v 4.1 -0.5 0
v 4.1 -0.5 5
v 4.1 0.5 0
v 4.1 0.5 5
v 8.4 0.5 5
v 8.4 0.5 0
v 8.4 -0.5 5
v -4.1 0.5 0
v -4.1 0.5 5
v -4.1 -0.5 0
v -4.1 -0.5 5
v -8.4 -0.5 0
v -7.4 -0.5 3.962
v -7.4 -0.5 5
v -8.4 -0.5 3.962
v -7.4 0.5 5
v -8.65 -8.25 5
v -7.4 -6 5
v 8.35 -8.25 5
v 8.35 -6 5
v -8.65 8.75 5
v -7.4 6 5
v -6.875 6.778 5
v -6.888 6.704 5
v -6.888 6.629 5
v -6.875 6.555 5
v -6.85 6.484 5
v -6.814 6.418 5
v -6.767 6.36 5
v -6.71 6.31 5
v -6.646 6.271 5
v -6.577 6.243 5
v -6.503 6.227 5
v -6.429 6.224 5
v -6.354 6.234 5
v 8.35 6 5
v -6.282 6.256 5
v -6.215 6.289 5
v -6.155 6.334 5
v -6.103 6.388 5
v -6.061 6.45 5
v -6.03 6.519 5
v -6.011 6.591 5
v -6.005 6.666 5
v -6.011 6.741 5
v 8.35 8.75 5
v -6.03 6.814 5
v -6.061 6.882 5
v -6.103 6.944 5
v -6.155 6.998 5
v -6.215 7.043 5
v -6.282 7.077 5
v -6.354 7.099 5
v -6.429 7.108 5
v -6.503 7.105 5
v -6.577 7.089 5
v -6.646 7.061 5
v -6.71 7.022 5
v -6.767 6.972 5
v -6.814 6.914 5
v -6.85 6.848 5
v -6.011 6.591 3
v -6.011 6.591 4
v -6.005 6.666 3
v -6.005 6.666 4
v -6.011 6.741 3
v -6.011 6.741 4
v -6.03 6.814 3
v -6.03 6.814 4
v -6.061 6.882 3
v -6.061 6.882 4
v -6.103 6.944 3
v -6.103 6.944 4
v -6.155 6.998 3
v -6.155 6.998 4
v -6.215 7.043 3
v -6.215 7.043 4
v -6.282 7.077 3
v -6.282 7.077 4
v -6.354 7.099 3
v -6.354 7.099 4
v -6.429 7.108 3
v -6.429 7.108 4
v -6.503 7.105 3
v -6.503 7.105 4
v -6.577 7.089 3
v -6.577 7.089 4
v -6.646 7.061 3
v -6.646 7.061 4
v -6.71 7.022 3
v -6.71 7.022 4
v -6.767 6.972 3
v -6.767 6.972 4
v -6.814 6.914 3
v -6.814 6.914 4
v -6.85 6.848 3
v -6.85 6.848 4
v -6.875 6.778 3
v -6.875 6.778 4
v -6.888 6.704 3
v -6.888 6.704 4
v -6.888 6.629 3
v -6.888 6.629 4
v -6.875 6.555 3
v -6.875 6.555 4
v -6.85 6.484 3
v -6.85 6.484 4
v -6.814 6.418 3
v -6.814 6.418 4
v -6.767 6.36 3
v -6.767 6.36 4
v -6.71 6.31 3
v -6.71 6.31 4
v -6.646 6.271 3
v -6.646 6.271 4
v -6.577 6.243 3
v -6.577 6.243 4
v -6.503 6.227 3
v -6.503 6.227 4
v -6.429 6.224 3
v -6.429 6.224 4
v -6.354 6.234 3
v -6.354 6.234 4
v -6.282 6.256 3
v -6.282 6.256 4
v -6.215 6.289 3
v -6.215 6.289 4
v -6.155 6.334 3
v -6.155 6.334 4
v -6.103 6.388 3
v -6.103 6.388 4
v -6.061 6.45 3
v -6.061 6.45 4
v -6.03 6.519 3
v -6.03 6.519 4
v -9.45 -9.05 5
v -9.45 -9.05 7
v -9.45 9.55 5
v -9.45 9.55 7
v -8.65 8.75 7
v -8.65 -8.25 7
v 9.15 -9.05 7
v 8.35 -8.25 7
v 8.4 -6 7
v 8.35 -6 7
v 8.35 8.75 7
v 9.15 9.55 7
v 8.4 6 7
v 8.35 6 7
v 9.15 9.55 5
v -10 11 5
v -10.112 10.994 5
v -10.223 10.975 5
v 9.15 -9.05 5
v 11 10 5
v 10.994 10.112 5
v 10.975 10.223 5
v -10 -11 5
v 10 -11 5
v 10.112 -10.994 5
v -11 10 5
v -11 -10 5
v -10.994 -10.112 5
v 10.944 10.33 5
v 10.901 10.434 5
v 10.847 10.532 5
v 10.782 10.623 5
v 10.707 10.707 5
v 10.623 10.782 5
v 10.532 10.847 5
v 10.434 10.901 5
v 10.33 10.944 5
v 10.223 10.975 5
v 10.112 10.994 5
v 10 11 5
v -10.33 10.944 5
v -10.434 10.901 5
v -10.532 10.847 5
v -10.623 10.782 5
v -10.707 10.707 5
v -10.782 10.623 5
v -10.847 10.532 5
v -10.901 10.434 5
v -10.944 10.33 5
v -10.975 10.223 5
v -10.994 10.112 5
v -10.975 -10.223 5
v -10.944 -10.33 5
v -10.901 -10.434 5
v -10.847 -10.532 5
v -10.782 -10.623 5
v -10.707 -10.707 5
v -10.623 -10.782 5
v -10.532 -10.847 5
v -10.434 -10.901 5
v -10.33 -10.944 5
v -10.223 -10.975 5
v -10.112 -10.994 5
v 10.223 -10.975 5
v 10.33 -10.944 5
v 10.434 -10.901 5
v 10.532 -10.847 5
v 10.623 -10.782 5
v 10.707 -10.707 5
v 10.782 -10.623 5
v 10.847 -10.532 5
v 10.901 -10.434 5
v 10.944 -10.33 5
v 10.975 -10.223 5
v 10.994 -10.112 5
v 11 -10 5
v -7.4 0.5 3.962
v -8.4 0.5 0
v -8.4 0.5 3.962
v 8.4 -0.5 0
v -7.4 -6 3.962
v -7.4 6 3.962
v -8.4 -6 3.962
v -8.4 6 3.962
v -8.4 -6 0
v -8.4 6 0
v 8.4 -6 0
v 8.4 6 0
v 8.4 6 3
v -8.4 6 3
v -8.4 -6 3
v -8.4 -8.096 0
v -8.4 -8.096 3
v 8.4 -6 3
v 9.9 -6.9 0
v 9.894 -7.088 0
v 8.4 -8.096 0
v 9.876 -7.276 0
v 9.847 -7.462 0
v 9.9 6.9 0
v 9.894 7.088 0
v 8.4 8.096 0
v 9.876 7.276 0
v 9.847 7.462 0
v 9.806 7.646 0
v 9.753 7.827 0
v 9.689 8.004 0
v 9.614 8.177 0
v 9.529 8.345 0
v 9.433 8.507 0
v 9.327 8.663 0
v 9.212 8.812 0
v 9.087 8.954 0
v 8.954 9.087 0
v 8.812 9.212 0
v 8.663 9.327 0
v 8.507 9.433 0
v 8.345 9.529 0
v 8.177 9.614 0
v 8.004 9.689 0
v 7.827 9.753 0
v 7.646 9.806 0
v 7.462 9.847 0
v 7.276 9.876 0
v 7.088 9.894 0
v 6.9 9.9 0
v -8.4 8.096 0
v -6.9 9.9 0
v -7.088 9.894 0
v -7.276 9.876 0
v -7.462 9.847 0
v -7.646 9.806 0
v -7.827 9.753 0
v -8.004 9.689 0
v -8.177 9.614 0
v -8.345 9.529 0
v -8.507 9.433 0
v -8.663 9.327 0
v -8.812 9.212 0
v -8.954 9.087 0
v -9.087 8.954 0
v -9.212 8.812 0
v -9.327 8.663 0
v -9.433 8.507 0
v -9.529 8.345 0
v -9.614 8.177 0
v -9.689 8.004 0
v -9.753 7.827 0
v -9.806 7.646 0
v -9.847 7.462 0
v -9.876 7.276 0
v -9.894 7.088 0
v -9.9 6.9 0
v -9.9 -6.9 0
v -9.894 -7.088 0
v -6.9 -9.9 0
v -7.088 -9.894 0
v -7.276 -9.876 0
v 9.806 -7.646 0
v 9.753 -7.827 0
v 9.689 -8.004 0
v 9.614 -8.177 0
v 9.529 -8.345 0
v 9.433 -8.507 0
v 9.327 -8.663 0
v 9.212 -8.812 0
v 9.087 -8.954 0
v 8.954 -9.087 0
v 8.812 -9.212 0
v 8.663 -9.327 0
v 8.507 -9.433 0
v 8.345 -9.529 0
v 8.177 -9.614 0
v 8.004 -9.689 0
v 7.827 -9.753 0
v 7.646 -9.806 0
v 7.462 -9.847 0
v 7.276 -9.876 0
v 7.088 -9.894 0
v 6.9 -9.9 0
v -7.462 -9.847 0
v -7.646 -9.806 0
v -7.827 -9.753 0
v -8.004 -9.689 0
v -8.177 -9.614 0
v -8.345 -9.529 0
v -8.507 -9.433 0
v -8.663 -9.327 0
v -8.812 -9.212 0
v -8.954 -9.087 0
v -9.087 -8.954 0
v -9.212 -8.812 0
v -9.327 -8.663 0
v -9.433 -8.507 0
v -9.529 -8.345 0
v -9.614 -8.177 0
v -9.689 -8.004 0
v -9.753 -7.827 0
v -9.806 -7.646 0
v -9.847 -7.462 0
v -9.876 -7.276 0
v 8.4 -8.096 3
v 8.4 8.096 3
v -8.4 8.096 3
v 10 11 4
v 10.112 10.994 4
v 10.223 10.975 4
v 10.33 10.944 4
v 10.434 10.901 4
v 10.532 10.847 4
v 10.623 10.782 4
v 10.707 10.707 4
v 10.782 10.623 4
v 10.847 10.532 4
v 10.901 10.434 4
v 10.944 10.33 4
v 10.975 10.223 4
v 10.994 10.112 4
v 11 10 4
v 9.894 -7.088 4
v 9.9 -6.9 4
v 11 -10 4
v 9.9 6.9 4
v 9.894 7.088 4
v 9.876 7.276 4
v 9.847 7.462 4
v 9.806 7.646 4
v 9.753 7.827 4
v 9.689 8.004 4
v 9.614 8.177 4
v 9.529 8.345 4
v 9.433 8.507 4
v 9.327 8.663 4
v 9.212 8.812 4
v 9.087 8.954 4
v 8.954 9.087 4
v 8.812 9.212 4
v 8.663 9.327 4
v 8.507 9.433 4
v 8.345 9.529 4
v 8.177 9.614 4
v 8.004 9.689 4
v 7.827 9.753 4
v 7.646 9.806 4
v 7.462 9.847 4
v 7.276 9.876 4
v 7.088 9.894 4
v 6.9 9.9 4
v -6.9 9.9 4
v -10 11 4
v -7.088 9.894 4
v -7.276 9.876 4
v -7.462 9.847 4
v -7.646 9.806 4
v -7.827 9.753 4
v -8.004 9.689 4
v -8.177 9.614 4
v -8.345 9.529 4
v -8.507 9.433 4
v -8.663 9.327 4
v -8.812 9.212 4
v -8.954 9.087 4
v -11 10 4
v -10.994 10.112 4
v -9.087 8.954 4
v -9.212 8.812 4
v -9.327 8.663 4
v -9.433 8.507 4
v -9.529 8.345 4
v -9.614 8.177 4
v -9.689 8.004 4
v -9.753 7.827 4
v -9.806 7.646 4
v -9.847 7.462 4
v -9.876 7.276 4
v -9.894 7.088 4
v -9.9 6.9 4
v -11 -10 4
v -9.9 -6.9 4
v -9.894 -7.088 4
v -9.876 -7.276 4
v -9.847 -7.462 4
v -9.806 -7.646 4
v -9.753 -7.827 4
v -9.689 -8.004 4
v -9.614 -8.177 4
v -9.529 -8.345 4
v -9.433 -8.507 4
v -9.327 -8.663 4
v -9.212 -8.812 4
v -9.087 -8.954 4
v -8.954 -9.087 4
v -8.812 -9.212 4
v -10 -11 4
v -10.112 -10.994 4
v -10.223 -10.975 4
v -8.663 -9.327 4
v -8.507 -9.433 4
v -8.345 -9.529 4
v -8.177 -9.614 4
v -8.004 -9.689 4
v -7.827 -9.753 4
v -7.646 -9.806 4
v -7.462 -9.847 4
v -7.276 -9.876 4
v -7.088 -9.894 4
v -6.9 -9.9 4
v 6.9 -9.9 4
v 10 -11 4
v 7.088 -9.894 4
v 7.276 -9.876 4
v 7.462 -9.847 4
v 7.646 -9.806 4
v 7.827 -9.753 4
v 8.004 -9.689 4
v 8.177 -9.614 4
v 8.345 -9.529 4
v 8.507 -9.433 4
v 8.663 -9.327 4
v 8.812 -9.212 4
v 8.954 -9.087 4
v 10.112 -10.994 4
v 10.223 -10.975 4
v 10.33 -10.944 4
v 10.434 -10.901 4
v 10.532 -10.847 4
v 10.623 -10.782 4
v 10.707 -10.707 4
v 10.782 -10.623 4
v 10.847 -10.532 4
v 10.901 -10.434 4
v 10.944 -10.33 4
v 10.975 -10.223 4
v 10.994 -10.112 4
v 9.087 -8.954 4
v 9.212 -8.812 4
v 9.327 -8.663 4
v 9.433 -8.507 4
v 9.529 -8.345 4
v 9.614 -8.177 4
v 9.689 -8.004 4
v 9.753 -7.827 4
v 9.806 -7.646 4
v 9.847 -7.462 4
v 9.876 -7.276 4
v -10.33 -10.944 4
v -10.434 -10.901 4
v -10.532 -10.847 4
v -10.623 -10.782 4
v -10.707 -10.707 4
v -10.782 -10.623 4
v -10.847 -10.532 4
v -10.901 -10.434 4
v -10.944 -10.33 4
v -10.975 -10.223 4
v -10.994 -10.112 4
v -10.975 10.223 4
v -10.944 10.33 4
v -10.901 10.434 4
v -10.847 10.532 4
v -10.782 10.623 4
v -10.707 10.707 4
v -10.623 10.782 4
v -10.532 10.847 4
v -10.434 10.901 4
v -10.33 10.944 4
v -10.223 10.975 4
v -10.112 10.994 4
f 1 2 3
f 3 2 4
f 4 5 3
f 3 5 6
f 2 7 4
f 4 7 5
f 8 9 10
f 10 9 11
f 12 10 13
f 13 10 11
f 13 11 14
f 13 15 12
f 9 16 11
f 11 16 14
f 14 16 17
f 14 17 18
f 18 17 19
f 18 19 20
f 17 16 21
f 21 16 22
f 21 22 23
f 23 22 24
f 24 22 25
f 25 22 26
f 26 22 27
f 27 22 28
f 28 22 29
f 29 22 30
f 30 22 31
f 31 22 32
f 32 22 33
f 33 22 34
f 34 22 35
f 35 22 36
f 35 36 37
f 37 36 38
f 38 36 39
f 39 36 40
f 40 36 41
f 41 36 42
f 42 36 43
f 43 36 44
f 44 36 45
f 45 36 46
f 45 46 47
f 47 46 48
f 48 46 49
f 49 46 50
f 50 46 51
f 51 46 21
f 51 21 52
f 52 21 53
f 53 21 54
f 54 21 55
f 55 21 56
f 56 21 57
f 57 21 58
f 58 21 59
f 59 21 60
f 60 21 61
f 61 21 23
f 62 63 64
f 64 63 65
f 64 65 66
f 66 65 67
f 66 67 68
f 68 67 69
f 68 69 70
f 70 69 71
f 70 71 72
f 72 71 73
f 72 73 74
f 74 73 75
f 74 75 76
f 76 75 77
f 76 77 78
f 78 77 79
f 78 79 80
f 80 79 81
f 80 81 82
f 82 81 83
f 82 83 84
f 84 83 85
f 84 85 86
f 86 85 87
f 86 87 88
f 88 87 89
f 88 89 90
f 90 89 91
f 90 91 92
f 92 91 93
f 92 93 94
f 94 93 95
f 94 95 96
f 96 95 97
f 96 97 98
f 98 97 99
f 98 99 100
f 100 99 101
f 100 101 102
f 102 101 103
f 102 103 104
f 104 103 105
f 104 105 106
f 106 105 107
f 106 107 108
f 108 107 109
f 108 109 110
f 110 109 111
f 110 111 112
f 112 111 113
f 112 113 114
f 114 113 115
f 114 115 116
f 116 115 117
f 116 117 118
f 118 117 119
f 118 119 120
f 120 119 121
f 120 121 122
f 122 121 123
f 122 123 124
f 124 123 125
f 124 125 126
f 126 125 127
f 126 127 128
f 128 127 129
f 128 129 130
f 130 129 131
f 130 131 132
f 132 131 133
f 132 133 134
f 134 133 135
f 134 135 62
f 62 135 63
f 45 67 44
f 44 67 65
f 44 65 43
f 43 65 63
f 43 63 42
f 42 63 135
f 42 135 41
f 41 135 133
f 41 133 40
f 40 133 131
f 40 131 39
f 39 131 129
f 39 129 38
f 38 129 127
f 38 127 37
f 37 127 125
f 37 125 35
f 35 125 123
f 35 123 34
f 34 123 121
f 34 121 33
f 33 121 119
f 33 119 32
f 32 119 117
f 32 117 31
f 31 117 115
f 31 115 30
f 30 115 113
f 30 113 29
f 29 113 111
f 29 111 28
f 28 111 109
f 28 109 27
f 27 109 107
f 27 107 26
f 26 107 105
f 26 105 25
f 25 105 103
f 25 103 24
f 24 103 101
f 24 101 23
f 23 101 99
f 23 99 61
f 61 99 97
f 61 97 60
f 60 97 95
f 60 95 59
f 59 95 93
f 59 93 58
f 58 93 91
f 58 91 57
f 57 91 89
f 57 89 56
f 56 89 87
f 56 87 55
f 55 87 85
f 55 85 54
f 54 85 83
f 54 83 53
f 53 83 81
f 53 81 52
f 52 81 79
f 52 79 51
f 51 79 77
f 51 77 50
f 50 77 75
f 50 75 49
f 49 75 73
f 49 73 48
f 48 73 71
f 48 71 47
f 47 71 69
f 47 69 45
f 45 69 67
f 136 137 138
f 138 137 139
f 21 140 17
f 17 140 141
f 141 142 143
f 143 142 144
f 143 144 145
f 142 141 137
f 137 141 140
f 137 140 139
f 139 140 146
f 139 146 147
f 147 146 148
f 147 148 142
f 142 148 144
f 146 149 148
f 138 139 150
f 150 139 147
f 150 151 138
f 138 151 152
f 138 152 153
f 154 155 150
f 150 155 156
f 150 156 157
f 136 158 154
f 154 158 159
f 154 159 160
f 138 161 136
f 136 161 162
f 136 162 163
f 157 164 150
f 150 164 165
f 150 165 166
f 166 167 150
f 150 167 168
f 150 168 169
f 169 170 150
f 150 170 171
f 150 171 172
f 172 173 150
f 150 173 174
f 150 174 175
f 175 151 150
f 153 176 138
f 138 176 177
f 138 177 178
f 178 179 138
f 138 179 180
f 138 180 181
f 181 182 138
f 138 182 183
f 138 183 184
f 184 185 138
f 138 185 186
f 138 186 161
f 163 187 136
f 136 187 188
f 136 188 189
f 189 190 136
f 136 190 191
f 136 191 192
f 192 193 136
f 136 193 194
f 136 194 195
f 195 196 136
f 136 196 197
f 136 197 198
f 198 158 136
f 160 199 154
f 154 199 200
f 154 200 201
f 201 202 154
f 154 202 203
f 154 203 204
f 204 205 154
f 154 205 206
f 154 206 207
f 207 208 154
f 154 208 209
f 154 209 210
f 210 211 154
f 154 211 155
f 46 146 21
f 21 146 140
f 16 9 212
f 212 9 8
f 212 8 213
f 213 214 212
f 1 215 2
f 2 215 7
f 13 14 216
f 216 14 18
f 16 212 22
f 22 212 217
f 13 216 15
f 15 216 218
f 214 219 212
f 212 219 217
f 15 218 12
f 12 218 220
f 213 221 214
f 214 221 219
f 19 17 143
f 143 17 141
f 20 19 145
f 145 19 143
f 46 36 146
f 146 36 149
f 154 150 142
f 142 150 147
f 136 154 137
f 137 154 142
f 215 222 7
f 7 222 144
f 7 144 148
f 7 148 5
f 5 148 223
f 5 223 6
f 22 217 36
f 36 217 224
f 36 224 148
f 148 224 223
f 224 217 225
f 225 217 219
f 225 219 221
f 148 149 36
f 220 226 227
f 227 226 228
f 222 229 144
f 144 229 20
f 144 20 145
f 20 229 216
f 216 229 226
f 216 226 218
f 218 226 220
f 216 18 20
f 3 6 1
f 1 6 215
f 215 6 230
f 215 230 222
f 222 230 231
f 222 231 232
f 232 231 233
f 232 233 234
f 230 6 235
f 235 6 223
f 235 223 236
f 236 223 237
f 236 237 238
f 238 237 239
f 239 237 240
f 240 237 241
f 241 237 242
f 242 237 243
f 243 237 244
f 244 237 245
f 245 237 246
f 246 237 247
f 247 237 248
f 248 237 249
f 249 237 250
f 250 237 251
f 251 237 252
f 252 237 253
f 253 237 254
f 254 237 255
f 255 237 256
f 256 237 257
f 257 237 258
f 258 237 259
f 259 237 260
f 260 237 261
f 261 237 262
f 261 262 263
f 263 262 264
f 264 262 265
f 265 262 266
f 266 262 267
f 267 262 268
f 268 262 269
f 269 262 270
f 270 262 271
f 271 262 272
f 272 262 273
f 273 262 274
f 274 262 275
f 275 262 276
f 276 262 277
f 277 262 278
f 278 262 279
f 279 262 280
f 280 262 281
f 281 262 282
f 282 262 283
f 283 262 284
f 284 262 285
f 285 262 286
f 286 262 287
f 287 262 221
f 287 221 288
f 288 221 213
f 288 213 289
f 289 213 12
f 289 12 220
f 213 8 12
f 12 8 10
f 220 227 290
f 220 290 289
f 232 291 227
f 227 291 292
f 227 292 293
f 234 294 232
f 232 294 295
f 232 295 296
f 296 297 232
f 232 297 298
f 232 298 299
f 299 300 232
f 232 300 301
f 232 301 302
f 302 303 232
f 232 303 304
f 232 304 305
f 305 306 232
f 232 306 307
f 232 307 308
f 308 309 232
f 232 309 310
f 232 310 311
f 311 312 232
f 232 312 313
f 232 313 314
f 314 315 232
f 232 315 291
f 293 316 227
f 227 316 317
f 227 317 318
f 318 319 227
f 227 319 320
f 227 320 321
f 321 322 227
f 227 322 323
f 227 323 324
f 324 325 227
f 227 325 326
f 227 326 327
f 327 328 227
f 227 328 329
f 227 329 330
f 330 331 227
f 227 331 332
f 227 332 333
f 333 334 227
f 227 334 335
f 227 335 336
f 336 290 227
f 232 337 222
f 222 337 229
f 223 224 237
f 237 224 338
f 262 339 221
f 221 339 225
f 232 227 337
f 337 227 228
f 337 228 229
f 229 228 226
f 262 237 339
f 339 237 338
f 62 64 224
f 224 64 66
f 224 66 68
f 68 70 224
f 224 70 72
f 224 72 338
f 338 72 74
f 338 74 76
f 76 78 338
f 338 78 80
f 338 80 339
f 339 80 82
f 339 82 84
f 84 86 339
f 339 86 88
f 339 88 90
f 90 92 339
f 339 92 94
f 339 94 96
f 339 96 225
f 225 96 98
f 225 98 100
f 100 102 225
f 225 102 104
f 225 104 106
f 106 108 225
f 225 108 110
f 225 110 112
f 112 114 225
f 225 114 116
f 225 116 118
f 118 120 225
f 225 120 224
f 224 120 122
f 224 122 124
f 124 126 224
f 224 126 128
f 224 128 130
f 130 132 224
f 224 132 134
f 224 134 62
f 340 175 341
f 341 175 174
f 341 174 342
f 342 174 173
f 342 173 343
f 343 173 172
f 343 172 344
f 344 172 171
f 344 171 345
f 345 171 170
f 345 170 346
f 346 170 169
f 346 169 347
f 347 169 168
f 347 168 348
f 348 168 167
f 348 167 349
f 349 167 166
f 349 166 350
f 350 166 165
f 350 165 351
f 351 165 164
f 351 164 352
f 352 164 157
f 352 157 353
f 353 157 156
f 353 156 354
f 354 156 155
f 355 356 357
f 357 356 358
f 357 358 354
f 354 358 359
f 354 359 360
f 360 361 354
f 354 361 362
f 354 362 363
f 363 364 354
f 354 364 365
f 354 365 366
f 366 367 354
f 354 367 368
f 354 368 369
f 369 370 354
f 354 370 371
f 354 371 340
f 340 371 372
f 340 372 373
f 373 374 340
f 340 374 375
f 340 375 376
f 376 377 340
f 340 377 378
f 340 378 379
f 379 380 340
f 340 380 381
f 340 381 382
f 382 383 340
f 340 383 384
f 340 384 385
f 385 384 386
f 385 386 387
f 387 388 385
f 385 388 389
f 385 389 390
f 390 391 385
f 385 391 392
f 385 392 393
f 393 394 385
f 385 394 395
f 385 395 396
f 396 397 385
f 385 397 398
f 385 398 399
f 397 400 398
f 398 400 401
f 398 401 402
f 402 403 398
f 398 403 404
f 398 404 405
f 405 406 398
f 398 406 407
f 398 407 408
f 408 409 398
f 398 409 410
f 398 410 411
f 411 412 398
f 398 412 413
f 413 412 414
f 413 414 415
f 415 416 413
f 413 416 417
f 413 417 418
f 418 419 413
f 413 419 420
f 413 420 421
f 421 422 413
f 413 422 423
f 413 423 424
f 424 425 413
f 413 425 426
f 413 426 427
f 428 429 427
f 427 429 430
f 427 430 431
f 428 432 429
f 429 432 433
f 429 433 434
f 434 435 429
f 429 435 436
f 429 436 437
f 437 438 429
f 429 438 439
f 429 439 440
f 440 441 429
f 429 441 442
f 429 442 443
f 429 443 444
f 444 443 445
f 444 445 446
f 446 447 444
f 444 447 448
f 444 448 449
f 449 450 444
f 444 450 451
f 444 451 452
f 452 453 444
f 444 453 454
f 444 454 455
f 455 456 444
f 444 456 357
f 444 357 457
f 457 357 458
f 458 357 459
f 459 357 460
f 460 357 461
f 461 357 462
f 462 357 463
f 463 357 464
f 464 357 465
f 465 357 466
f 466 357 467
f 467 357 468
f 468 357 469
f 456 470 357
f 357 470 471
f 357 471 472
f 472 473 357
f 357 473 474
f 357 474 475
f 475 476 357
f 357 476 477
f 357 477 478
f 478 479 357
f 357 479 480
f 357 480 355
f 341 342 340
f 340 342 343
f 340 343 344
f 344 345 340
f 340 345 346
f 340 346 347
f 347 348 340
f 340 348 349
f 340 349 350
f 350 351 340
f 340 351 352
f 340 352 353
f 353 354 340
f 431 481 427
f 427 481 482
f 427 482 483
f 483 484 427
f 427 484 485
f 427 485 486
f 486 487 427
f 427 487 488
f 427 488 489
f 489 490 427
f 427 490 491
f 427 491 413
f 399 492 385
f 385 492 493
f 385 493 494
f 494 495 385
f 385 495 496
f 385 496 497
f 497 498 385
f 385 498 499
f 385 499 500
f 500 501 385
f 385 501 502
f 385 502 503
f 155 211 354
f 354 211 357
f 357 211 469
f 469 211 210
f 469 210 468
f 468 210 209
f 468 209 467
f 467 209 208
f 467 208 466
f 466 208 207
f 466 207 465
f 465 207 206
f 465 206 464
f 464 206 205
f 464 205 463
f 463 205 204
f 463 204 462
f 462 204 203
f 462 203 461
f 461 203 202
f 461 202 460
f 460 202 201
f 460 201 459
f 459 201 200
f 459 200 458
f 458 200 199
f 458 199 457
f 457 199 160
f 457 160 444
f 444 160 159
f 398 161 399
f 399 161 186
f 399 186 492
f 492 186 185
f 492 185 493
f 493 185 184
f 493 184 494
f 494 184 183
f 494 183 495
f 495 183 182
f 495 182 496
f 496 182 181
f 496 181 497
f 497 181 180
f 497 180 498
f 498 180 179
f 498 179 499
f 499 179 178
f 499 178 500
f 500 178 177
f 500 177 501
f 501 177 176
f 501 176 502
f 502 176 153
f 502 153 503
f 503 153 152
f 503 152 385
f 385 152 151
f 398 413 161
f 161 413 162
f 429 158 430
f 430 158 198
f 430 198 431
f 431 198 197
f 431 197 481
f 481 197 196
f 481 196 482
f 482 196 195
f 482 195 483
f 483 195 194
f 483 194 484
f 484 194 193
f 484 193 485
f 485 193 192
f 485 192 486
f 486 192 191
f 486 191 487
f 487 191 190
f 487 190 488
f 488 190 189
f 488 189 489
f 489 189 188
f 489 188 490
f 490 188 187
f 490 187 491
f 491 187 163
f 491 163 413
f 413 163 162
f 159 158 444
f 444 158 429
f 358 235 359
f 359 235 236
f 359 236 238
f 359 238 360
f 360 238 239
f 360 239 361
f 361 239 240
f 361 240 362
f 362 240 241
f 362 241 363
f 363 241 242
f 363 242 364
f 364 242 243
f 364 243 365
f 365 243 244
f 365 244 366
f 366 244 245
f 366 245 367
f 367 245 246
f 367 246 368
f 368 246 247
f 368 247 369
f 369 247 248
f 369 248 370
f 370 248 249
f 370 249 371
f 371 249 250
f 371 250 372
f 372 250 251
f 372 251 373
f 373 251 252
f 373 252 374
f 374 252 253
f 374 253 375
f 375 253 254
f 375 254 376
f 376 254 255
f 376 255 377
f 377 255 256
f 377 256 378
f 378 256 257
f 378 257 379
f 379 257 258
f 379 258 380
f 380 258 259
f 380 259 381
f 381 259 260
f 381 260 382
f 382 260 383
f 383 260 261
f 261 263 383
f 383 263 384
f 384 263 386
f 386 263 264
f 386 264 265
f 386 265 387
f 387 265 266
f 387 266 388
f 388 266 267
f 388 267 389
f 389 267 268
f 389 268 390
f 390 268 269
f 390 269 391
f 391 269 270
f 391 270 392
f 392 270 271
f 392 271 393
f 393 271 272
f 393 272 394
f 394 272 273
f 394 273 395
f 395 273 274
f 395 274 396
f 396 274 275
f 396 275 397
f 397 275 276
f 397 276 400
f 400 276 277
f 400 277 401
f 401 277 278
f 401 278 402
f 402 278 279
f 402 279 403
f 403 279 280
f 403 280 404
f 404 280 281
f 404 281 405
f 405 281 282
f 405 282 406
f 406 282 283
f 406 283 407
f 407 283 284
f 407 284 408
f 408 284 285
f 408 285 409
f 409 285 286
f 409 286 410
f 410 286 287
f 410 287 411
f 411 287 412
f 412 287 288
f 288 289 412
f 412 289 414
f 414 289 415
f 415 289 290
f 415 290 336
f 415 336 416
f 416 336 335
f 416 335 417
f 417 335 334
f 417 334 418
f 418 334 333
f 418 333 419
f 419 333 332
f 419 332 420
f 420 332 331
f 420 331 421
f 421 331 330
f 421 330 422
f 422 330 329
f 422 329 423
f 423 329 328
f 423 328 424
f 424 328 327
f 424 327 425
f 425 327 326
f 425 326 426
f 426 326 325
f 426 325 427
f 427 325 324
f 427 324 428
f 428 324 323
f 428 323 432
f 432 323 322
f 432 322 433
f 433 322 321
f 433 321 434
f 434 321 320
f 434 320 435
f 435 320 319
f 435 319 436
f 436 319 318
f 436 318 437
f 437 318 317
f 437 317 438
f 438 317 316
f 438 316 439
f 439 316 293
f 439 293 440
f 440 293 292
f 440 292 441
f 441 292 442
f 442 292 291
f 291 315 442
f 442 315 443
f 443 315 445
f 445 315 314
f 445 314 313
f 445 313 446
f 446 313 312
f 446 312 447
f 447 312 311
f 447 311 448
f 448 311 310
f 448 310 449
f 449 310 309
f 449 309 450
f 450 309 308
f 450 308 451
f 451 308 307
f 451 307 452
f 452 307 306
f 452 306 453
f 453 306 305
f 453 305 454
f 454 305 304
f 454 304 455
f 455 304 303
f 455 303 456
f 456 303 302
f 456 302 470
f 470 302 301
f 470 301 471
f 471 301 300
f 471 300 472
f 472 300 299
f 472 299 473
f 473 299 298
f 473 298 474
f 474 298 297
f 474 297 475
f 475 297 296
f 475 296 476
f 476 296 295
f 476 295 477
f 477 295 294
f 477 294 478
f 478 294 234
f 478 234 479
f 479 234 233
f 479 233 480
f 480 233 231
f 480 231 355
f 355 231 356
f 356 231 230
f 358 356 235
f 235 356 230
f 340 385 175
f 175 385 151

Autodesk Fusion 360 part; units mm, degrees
sketch "Sketch1" plane through (0, 0, 0) normal (0, 0, 1) x (1, 0, 0)
  line L0 (9.9, 9.9) -> (-9.9, 9.9)
  line L1 (-9.9, 9.9) -> (-9.9, -9.9)
  line L2 (-9.9, -9.9) -> (9.9, -9.9)
  line L3 (9.9, -9.9) -> (9.9, 9.9)
  line L4 (9.9, 9.9) -> (-9.9, -9.9) construction
  line L5 (-9.9, 9.9) -> (9.9, -9.9) construction
  line L6 (11, -11) -> (-11, -11)
  line L7 (-11, -11) -> (-11, 11)
  line L8 (-11, 11) -> (11, 11)
  line L9 (11, 11) -> (11, -11)
  line L10 (11, -11) -> (-11, 11) construction
  line L11 (-11, -11) -> (11, 11) construction
  line L12 (8.9, -8.9) -> (-8.9, -8.9)
  line L13 (-8.9, -8.9) -> (-8.9, 8.9)
  line L14 (-8.9, 8.9) -> (8.9, 8.9)
  line L15 (8.9, 8.9) -> (8.9, -8.9)
  line L16 (8.9, -8.9) -> (-8.9, 8.9) construction
  line L17 (-8.9, -8.9) -> (8.9, 8.9) construction
  line L18 (8.4, -6) -> (-8.4, -6)
  line L19 (-8.4, -6) -> (-8.4, 6)
  line L20 (-8.4, 6) -> (8.4, 6)
  line L21 (8.4, 6) -> (8.4, -6)
  line L22 (8.4, -6) -> (-8.4, 6) construction
  line L23 (-8.4, -6) -> (8.4, 6) construction
  line L24 (8.0957, 8.0957) -> (-8.0957, 8.0957)
  line L25 (-8.0957, 8.0957) -> (-8.0957, -8.0957)
  line L26 (-8.0957, -8.0957) -> (8.0957, -8.0957)
  line L27 (8.0957, -8.0957) -> (8.0957, 8.0957)
  line L28 (8.0957, 8.0957) -> (-8.0957, -8.0957) construction
  line L29 (-8.0957, 8.0957) -> (8.0957, -8.0957) construction
  line L30 (8.9, -0.5) -> (-8.9, -0.5)
  line L31 (-8.9, -0.5) -> (-8.9, 0.5)
  line L32 (-8.9, 0.5) -> (8.9, 0.5)
  line L33 (8.9, 0.5) -> (8.9, -0.5)
  line L34 (8.9, -0.5) -> (-8.9, 0.5) construction
  line L35 (-8.9, -0.5) -> (8.9, 0.5) construction
  dimension "d1" = 19.8
  dimension "d2" = 19.8
  dimension "d3" = 22
  dimension "d4" = 22
  dimension "d5" = 17.8
  dimension "d6" = 17.8
  dimension "d7" = 16.8
  dimension "d8" = 12
  dimension "d53" = 1
extrude "Extrude1" add sketch "Sketch1" along normal blind 1 contours L12 L13 L15 L18 L19 L21 L25 L26 L27 L30 | L15 L21 L30 L32 L33 | L13 L19 L30 L31 L32 | L13 L14 L15 L19 L20 L21 L24 L25 L27 L32 | L18 L25 L26 L27 | L20 L24 L25 L27
extrude "Extrude2" add sketch "Sketch1" along normal blind 4 contours L0 L1 L2 L3
extrude "Extrude3" add sketch "Sketch1" along normal blind 5 contours L6 L7 L8 L9
extrude "Extrude4" cut sketch "Sketch1" along normal blind 4 contours L6 L7 L8 L9
extrude "Extrude5" add 1 faces at (-9.5667, -2.9667, 4) along direction (0, 0, 1) blind 1
fillet "Fillet1" radius 3 1 edges at (9.9, -9.9, 2)
fillet "Fillet2" radius 3 1 edges at (-9.9, -9.9, 2)
fillet "Fillet3" radius 3 2 edges at (-9.9, 9.9, 2) (9.9, 9.9, 2)
fillet "Fillet4" radius 1 4 edges at (-11, -11, 4.5) (-11, 11, 4.5) (11, -11, 4.5) (11, 11, 4.5)
extrude "Extrude6" add 1 faces at (-2.8, -7.9333, 1) along direction (0, 0, 1) blind 5
extrude "Extrude7" cut sketch "Sketch1" along normal blind 3 contours L18 L25 L26 L27 | L20 L24 L25 L27
extrude "Extrude8" cut 1 faces at (-8.0957, 7.3972, 1) along direction (-1, 0, 0) blind 0.304
extrude "Extrude9" cut 1 faces at (8.0957, 6.6986, 1) along direction (1, 0, 0) blind 0.304
extrude "Extrude10" cut 1 faces at (8.0957, -7.3972, 1) along direction (1, 0, 0) blind 0.304
extrude "Extrude11" cut 1 faces at (-8.0957, -6.6986, 1) along direction (-1, 0, 0) blind 0.304
sketch "Sketch2" plane through (8.4, 0, 0) normal (-1, 0, 0) x (0, -1, 0)
  line L0 (-6, 0) -> (6, 0)
  line L1 (6, 0) -> (6, 6)
  line L2 (6, 6) -> (-6, 6)
  line L3 (-6, 6) -> (-6, 0)
  line L4 (-6, 6) -> (6, 6)
  line L5 (6, 6) -> (6, 4.0166)
  line L6 (6, 4.0166) -> (-6, 4.0166)
  line L7 (-6, 4.0166) -> (-6, 6)
extrude "Extrude12" add sketch "Sketch2" along normal blind 1 contours L1 L2 L3 L4 L5 L6 L7
sketch "Sketch3" plane through (-8.4, 0, 0) normal (1, 0, 0) x (0, 1, 0)
  line L0 (-6, 0) -> (6, 0)
  line L1 (6, 0) -> (6, 6)
  line L2 (6, 6) -> (-6, 6)
  line L3 (-6, 6) -> (-6, 0)
  line L4 (-6, 6) -> (6, 6)
  line L5 (6, 6) -> (6, 3.9624)
  line L6 (6, 3.9624) -> (-6, 3.9624)
  line L7 (-6, 3.9624) -> (-6, 6)
extrude "Extrude13" add sketch "Sketch3" along normal blind 1 contours L1 L2 L3 L4 L5 L6 L7
extrude "Extrude14" cut 1 faces at (-2.4667, 7.9333, 6) along direction (0, 0, -1) blind 2
extrude "Extrude15" add 1 faces at (-2.4667, 7.9333, 4) along direction (0, 0, 1) blind 1
sketch "TOP BUTTON GUIDE" plane through (0, 0, 5) normal (0, 0, 1) x (-1, 0, 0)
  line L0 (-8.4, 6) -> (7.4, 6)
  line L1 (7.4, 6) -> (7.4, -6)
  line L2 (7.4, -6) -> (-8.4, -6)
  line L3 (-8.4, -6) -> (-8.4, 6)
  arc A0 (-11, -10) -> (-10, -11) centre (-10, -10) ccw
  line L4 (-10, -11) -> (10, -11)
  arc A1 (10, -11) -> (11, -10) centre (10, -10) ccw
  line L5 (11, -10) -> (11, 10)
  arc A2 (11, 10) -> (10, 11) centre (10, 10) ccw
  line L6 (10, 11) -> (-10, 11)
  arc A3 (-10, 11) -> (-11, 10) centre (-10, 10) ccw
  line L7 (-11, 10) -> (-11, -10)
  line L8 (-8.35, 8.25) -> (8.35, 8.25)
  line L9 (8.35, 8.25) -> (8.35, -8.25)
  line L10 (8.35, -8.25) -> (-8.35, -8.25)
  line L11 (-8.35, -8.25) -> (-8.35, 8.25)
  line L12 (-8.35, 8.25) -> (8.35, -8.25) construction
  line L13 (8.35, 8.25) -> (-8.35, -8.25) construction
  line L14 (-9.15, 9.05) -> (9.15, 9.05)
  line L15 (9.15, 9.05) -> (9.15, -9.05)
  line L16 (9.15, -9.05) -> (-9.15, -9.05)
  line L17 (-9.15, -9.05) -> (-9.15, 9.05)
  line L18 (-9.15, 9.05) -> (9.15, -9.05) construction
  line L19 (9.15, 9.05) -> (-9.15, -9.05) construction
  dimension "d47" = 16.7
  dimension "d48" = 16.5
  dimension "d49" = 18.3
  dimension "d50" = 18.1
extrude "Extrude16" add sketch "TOP BUTTON GUIDE" along normal blind 2 contours L14 L15 L16 L17
extrude "Extrude17" add sketch "Sketch1" along normal blind 5 contours L21 L27 L30 L32 | L19 L25 L30 L32 | L25 L27 L30 L32
sketch "Sketch5" plane through (0, 0, 5) normal (0, 0, 1) x (-1, 0, 0)
  line L0 (7.4, -0.5) -> (7.4, -6)
  line L1 (7.4, -6) -> (-8.35, -6)
  line L2 (-8.35, -6) -> (-8.35, -8.25)
  line L3 (-8.35, -8.25) -> (8.35, -8.25)
  line L4 (8.35, -8.25) -> (8.35, 8.25)
  line L5 (8.35, 8.25) -> (-8.35, 8.25)
  line L6 (-8.35, 8.25) -> (-8.35, 6)
  line L7 (-8.35, 6) -> (7.4, 6)
  line L8 (7.4, 6) -> (7.4, 0.5)
  line L9 (7.4, 0.5) -> (-8.4, 0.5)
  line L10 (-8.4, 0.5) -> (-8.4, -0.5)
  line L11 (-8.4, -0.5) -> (7.4, -0.5)
  line L12 (-3.5, 1.3147) -> (3.5, 1.3147)
  line L13 (3.5, 1.3147) -> (3.5, -1.3147)
  line L14 (3.5, -1.3147) -> (-3.5, -1.3147)
  line L15 (-3.5, -1.3147) -> (-3.5, 1.3147)
  line L16 (-3.5, 1.3147) -> (3.5, -1.3147) construction
  line L17 (3.5, 1.3147) -> (-3.5, -1.3147) construction
  dimension "d56" = 7
extrude "Extrude18" cut sketch "Sketch5" against normal blind 6 contours L9 L11 L13 L15
extrude "Extrude19" cut 1 faces at (-2.7833, 8.25, 5.6667) along direction (0, 1, 0) blind 0.5
extrude "Extrude20" add 1 faces at (-3.05, 9.05, 5.6667) along direction (0, 1, 0) blind 0.5
extrude "Extrude21" cut 1 faces at (-8.35, 3.0833, 6.3333) along direction (-1, 0, 0) blind 0.3
extrude "Extrude22" add 1 faces at (-9.15, 3.35, 5.6667) along direction (-1, 0, 0) blind 0.3
sketch "Sketch6" plane through (0, 0, 5) normal (0, 0, 1) x (-1, 0, 0)
  line L0 (3.5, 0.5) -> (3.5, -0.5)
  line L1 (3.5, -0.5) -> (7.4, -0.5)
  line L2 (7.4, -0.5) -> (7.4, -6)
  line L3 (7.4, -6) -> (-8.35, -6)
  line L4 (-8.35, -6) -> (-8.35, -8.75)
  line L5 (-8.35, -8.75) -> (8.65, -8.75)
  line L6 (8.65, -8.75) -> (8.65, 8.25)
  line L7 (8.65, 8.25) -> (-8.35, 8.25)
  line L8 (-8.35, 8.25) -> (-8.35, 6)
  line L9 (-8.35, 6) -> (7.4, 6)
  line L10 (7.4, 6) -> (7.4, 0.5)
  line L11 (7.4, 0.5) -> (3.5, 0.5)
  circle A0 centre (6.4473, -6.6661) radius 0.4424
extrude "Extrude23" cut sketch "Sketch6" against normal blind 2 contours A0
extrude "Extrude24" cut 1 faces at (-3.5, -0.1667, 3.3333) along direction (-1, 0, 0) blind 0.6
extrude "Extrude25" cut 1 faces at (3.5, 0.1667, 3.3333) along direction (1, 0, 0) blind 0.6
